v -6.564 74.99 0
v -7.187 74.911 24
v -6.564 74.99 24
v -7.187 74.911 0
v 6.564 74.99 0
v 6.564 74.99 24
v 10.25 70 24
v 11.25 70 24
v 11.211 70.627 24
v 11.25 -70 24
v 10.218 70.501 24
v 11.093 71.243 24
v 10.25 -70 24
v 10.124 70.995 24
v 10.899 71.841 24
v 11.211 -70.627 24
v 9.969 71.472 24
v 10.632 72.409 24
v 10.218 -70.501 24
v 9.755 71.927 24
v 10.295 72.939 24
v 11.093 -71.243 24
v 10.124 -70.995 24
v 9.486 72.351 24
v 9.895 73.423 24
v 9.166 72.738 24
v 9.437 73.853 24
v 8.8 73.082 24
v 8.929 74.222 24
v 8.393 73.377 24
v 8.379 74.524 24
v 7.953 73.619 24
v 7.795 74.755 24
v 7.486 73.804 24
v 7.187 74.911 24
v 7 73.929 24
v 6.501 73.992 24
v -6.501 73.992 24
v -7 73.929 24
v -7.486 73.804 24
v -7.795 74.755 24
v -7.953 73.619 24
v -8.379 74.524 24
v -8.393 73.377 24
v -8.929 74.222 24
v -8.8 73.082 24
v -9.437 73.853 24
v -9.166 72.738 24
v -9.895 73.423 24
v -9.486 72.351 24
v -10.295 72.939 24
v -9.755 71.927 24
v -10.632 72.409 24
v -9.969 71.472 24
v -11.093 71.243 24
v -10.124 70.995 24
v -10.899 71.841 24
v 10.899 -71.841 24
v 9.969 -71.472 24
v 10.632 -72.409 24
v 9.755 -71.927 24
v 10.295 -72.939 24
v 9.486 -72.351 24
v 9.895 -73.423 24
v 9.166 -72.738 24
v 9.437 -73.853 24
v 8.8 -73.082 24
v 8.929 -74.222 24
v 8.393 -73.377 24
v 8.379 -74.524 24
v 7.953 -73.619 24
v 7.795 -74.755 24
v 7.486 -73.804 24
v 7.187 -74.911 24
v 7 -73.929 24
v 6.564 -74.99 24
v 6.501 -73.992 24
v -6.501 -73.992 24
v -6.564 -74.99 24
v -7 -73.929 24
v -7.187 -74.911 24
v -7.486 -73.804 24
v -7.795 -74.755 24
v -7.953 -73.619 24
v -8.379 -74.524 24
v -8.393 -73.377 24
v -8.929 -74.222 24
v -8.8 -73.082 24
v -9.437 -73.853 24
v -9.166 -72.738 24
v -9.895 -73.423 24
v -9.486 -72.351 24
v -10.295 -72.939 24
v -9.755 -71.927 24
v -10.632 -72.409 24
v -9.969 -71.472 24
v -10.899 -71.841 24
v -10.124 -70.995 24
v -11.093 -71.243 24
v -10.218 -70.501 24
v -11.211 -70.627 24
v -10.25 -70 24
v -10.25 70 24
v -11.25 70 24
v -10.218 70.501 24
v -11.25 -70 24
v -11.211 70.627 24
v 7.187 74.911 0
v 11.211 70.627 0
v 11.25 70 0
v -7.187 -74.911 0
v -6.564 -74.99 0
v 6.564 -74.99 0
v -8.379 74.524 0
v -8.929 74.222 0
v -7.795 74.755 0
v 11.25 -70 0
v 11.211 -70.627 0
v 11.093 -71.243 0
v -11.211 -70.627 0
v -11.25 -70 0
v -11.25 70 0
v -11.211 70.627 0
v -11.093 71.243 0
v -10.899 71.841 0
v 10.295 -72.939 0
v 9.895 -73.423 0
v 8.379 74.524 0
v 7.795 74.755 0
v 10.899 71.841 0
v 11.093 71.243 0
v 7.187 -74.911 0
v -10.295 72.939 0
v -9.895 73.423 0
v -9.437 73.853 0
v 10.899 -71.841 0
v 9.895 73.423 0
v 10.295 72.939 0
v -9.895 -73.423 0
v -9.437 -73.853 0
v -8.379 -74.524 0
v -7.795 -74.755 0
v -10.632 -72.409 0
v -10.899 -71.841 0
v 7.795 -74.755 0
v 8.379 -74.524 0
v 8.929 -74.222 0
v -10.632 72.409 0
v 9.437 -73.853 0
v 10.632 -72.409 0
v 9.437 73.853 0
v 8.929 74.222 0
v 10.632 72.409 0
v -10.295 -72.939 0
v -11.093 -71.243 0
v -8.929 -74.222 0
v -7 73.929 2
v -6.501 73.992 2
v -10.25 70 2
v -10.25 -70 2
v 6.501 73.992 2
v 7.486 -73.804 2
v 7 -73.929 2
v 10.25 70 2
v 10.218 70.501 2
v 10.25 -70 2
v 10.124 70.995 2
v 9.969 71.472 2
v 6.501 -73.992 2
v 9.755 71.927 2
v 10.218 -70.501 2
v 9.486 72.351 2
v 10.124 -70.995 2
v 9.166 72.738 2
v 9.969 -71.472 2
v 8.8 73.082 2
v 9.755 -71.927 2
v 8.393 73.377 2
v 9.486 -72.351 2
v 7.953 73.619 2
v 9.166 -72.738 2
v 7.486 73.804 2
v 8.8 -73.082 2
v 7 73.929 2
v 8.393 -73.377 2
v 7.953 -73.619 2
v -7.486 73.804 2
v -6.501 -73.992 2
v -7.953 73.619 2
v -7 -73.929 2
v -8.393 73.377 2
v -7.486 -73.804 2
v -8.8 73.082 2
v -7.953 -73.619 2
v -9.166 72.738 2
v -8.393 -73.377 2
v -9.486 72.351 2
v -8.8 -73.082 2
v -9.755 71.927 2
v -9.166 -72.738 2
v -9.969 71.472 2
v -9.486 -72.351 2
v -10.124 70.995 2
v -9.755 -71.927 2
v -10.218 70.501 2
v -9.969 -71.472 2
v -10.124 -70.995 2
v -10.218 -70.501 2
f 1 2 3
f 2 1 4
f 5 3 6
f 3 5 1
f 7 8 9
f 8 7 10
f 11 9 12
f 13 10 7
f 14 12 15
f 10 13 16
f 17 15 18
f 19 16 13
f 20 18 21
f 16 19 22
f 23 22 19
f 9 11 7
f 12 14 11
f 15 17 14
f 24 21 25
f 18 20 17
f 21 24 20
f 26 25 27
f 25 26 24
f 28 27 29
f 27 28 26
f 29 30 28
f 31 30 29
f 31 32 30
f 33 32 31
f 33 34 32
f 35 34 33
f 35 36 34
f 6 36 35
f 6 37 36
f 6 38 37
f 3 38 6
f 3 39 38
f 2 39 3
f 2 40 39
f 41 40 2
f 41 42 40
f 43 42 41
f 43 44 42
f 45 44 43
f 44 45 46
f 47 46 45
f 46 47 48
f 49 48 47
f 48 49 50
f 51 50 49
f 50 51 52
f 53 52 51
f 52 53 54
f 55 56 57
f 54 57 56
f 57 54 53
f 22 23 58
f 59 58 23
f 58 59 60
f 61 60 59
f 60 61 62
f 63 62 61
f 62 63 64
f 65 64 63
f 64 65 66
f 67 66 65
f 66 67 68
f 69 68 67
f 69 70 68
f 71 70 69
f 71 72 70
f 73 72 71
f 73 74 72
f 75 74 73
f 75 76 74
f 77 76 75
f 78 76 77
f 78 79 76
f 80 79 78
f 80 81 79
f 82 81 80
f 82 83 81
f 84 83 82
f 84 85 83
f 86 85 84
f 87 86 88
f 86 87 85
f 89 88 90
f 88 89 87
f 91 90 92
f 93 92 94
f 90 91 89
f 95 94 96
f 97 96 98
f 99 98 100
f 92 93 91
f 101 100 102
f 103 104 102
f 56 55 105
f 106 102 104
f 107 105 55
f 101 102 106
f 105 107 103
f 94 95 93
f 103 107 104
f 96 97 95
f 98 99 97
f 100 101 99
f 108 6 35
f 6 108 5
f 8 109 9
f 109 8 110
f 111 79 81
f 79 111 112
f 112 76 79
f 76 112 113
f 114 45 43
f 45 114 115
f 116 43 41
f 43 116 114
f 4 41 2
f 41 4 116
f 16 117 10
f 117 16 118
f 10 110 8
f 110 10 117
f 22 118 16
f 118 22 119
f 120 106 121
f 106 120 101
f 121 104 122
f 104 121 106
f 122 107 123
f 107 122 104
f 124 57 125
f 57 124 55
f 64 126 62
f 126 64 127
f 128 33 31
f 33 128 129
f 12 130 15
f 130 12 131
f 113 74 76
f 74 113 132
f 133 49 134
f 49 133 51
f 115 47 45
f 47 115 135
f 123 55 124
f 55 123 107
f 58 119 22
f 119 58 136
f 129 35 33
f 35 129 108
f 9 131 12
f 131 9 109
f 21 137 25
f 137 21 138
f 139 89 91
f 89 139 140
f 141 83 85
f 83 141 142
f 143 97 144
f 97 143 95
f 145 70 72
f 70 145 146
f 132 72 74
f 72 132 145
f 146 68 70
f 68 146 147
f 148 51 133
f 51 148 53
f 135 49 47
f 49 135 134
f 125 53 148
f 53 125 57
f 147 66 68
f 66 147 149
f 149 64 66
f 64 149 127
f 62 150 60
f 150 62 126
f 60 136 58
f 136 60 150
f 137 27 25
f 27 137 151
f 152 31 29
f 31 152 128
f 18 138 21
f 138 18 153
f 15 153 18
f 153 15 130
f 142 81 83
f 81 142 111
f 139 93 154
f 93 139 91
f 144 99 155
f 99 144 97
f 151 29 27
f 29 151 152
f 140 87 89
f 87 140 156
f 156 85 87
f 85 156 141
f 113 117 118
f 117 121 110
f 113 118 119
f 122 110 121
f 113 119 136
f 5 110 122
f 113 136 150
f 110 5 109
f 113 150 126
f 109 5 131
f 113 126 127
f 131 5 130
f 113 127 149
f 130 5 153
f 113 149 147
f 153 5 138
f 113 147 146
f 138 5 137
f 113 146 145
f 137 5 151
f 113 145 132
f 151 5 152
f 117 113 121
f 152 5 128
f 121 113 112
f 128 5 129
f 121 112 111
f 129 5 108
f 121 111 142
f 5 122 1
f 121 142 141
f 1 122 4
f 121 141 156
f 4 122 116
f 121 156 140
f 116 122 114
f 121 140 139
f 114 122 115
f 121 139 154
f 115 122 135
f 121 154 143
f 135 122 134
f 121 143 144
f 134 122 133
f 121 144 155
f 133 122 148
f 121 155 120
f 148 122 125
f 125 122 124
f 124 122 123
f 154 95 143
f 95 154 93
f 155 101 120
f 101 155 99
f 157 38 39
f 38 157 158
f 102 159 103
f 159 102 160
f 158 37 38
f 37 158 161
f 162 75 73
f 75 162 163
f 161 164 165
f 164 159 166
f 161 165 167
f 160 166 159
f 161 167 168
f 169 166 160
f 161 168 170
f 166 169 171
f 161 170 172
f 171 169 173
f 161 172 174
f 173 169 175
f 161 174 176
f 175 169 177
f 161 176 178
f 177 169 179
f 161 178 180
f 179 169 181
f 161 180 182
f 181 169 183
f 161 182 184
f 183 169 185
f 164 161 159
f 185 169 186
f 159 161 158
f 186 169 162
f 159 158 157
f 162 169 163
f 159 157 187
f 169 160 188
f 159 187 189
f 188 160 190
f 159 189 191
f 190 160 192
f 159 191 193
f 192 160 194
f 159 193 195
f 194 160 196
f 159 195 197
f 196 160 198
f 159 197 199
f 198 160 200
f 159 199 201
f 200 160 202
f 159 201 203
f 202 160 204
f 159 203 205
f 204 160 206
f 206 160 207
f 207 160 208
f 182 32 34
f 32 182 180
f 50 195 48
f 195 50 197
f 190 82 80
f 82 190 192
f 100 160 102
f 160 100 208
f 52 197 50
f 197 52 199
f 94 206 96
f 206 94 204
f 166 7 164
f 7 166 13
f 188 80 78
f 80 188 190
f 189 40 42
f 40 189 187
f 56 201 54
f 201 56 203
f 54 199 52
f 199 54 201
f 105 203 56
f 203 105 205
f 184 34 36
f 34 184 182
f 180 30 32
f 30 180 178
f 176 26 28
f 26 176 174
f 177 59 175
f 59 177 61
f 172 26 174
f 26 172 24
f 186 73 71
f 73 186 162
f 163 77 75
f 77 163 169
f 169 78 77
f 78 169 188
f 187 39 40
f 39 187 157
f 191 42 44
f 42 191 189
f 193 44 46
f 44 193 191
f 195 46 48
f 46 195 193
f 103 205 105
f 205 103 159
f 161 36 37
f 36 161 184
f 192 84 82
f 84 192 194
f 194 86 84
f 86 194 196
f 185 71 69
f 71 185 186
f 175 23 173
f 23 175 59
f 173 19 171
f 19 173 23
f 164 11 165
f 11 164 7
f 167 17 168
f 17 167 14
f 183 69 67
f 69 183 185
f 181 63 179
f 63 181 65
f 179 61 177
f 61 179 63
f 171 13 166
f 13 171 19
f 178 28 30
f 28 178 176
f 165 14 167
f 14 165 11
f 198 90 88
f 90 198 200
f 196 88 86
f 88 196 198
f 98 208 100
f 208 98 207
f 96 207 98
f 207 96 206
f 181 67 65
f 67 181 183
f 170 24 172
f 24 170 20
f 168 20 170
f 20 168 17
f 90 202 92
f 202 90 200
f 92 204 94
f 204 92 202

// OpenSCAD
$fn = 50;


difference() {
	union() {
		hull() {
			translate(v = [-6.2500000000, 70.0000000000, 0]) {
				cylinder(h = 24, r = 5);
			}
			translate(v = [6.2500000000, 70.0000000000, 0]) {
				cylinder(h = 24, r = 5);
			}
			translate(v = [-6.2500000000, -70.0000000000, 0]) {
				cylinder(h = 24, r = 5);
			}
			translate(v = [6.2500000000, -70.0000000000, 0]) {
				cylinder(h = 24, r = 5);
			}
		}
	}
	union() {
		translate(v = [0, 0, 2]) {
			hull() {
				translate(v = [-6.2500000000, 70.0000000000, 0]) {
					cylinder(h = 22, r = 4);
				}
				translate(v = [6.2500000000, 70.0000000000, 0]) {
					cylinder(h = 22, r = 4);
				}
				translate(v = [-6.2500000000, -70.0000000000, 0]) {
					cylinder(h = 22, r = 4);
				}
				translate(v = [6.2500000000, -70.0000000000, 0]) {
					cylinder(h = 22, r = 4);
				}
			}
		}
	}
}
